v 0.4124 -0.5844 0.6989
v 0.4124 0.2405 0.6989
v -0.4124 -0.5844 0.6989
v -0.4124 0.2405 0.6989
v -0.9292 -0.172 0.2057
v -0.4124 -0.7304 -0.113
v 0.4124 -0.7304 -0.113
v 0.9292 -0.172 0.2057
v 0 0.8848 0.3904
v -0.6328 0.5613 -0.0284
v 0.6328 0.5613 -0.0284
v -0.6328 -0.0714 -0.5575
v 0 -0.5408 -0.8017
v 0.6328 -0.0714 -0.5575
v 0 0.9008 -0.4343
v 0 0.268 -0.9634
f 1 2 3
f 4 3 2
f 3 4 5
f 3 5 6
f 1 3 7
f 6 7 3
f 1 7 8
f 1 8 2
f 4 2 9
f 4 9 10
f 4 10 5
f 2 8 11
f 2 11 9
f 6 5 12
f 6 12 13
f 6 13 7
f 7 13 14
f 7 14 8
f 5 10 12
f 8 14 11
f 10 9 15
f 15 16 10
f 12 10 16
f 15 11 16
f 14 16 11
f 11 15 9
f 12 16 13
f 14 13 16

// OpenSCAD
polyhedron( points = [[-0.412423871808081, -0.584392304256392, 0.698850616862242], [0.412423209699261, -0.584392304256392, 0.698850616862242], [-0.412423871771049, 0.240454777325014, 0.698850616862242], [0.412423209736297, 0.240454777250951, 0.698850616862242], [-0.412423871845114, -0.730374693138481, -0.112975626866956], [0.412423209662228, -0.730374693151589, -0.112975626939852], [-0.929176248090725, -0.171968763405179, 0.205650340631312], [0.929175585981901, -0.17196876350454, 0.205650340548224], [-0.632765019932268, 0.561343263803659, -0.0283722275974291], [0.632764358225426, 0.561343263892454, -0.0283722274255259], [-0.632765019980542, -0.0714228285628204, -0.557503383535488], [0.632764357471977, -0.0714228283241435, -0.557503383363903], [-3.31127917334724e-07, -0.540832374477305, -0.801708695881818], [2.31736170465966e-06, 0.268008562683317, -0.963415363381006], [2.31735504403175e-06, 0.900774655018446, -0.434284207409278], [-3.30938141454595e-07, 0.884770253103004, 0.390407593772753]], faces = [[0, 1, 3, 2], [0, 2, 6], [0, 6, 4], [0, 4, 5, 1], [1, 5, 7], [1, 7, 3], [2, 3, 15], [2, 15, 8], [2, 8, 6], [3, 7, 9], [3, 9, 15], [4, 6, 10], [4, 10, 12], [4, 12, 5], [5, 12, 11], [5, 11, 7], [6, 8, 10], [7, 11, 9], [8, 15, 14], [8, 14, 13, 10], [9, 11, 13, 14], [9, 14, 15], [10, 13, 12], [11, 12, 13]]);
